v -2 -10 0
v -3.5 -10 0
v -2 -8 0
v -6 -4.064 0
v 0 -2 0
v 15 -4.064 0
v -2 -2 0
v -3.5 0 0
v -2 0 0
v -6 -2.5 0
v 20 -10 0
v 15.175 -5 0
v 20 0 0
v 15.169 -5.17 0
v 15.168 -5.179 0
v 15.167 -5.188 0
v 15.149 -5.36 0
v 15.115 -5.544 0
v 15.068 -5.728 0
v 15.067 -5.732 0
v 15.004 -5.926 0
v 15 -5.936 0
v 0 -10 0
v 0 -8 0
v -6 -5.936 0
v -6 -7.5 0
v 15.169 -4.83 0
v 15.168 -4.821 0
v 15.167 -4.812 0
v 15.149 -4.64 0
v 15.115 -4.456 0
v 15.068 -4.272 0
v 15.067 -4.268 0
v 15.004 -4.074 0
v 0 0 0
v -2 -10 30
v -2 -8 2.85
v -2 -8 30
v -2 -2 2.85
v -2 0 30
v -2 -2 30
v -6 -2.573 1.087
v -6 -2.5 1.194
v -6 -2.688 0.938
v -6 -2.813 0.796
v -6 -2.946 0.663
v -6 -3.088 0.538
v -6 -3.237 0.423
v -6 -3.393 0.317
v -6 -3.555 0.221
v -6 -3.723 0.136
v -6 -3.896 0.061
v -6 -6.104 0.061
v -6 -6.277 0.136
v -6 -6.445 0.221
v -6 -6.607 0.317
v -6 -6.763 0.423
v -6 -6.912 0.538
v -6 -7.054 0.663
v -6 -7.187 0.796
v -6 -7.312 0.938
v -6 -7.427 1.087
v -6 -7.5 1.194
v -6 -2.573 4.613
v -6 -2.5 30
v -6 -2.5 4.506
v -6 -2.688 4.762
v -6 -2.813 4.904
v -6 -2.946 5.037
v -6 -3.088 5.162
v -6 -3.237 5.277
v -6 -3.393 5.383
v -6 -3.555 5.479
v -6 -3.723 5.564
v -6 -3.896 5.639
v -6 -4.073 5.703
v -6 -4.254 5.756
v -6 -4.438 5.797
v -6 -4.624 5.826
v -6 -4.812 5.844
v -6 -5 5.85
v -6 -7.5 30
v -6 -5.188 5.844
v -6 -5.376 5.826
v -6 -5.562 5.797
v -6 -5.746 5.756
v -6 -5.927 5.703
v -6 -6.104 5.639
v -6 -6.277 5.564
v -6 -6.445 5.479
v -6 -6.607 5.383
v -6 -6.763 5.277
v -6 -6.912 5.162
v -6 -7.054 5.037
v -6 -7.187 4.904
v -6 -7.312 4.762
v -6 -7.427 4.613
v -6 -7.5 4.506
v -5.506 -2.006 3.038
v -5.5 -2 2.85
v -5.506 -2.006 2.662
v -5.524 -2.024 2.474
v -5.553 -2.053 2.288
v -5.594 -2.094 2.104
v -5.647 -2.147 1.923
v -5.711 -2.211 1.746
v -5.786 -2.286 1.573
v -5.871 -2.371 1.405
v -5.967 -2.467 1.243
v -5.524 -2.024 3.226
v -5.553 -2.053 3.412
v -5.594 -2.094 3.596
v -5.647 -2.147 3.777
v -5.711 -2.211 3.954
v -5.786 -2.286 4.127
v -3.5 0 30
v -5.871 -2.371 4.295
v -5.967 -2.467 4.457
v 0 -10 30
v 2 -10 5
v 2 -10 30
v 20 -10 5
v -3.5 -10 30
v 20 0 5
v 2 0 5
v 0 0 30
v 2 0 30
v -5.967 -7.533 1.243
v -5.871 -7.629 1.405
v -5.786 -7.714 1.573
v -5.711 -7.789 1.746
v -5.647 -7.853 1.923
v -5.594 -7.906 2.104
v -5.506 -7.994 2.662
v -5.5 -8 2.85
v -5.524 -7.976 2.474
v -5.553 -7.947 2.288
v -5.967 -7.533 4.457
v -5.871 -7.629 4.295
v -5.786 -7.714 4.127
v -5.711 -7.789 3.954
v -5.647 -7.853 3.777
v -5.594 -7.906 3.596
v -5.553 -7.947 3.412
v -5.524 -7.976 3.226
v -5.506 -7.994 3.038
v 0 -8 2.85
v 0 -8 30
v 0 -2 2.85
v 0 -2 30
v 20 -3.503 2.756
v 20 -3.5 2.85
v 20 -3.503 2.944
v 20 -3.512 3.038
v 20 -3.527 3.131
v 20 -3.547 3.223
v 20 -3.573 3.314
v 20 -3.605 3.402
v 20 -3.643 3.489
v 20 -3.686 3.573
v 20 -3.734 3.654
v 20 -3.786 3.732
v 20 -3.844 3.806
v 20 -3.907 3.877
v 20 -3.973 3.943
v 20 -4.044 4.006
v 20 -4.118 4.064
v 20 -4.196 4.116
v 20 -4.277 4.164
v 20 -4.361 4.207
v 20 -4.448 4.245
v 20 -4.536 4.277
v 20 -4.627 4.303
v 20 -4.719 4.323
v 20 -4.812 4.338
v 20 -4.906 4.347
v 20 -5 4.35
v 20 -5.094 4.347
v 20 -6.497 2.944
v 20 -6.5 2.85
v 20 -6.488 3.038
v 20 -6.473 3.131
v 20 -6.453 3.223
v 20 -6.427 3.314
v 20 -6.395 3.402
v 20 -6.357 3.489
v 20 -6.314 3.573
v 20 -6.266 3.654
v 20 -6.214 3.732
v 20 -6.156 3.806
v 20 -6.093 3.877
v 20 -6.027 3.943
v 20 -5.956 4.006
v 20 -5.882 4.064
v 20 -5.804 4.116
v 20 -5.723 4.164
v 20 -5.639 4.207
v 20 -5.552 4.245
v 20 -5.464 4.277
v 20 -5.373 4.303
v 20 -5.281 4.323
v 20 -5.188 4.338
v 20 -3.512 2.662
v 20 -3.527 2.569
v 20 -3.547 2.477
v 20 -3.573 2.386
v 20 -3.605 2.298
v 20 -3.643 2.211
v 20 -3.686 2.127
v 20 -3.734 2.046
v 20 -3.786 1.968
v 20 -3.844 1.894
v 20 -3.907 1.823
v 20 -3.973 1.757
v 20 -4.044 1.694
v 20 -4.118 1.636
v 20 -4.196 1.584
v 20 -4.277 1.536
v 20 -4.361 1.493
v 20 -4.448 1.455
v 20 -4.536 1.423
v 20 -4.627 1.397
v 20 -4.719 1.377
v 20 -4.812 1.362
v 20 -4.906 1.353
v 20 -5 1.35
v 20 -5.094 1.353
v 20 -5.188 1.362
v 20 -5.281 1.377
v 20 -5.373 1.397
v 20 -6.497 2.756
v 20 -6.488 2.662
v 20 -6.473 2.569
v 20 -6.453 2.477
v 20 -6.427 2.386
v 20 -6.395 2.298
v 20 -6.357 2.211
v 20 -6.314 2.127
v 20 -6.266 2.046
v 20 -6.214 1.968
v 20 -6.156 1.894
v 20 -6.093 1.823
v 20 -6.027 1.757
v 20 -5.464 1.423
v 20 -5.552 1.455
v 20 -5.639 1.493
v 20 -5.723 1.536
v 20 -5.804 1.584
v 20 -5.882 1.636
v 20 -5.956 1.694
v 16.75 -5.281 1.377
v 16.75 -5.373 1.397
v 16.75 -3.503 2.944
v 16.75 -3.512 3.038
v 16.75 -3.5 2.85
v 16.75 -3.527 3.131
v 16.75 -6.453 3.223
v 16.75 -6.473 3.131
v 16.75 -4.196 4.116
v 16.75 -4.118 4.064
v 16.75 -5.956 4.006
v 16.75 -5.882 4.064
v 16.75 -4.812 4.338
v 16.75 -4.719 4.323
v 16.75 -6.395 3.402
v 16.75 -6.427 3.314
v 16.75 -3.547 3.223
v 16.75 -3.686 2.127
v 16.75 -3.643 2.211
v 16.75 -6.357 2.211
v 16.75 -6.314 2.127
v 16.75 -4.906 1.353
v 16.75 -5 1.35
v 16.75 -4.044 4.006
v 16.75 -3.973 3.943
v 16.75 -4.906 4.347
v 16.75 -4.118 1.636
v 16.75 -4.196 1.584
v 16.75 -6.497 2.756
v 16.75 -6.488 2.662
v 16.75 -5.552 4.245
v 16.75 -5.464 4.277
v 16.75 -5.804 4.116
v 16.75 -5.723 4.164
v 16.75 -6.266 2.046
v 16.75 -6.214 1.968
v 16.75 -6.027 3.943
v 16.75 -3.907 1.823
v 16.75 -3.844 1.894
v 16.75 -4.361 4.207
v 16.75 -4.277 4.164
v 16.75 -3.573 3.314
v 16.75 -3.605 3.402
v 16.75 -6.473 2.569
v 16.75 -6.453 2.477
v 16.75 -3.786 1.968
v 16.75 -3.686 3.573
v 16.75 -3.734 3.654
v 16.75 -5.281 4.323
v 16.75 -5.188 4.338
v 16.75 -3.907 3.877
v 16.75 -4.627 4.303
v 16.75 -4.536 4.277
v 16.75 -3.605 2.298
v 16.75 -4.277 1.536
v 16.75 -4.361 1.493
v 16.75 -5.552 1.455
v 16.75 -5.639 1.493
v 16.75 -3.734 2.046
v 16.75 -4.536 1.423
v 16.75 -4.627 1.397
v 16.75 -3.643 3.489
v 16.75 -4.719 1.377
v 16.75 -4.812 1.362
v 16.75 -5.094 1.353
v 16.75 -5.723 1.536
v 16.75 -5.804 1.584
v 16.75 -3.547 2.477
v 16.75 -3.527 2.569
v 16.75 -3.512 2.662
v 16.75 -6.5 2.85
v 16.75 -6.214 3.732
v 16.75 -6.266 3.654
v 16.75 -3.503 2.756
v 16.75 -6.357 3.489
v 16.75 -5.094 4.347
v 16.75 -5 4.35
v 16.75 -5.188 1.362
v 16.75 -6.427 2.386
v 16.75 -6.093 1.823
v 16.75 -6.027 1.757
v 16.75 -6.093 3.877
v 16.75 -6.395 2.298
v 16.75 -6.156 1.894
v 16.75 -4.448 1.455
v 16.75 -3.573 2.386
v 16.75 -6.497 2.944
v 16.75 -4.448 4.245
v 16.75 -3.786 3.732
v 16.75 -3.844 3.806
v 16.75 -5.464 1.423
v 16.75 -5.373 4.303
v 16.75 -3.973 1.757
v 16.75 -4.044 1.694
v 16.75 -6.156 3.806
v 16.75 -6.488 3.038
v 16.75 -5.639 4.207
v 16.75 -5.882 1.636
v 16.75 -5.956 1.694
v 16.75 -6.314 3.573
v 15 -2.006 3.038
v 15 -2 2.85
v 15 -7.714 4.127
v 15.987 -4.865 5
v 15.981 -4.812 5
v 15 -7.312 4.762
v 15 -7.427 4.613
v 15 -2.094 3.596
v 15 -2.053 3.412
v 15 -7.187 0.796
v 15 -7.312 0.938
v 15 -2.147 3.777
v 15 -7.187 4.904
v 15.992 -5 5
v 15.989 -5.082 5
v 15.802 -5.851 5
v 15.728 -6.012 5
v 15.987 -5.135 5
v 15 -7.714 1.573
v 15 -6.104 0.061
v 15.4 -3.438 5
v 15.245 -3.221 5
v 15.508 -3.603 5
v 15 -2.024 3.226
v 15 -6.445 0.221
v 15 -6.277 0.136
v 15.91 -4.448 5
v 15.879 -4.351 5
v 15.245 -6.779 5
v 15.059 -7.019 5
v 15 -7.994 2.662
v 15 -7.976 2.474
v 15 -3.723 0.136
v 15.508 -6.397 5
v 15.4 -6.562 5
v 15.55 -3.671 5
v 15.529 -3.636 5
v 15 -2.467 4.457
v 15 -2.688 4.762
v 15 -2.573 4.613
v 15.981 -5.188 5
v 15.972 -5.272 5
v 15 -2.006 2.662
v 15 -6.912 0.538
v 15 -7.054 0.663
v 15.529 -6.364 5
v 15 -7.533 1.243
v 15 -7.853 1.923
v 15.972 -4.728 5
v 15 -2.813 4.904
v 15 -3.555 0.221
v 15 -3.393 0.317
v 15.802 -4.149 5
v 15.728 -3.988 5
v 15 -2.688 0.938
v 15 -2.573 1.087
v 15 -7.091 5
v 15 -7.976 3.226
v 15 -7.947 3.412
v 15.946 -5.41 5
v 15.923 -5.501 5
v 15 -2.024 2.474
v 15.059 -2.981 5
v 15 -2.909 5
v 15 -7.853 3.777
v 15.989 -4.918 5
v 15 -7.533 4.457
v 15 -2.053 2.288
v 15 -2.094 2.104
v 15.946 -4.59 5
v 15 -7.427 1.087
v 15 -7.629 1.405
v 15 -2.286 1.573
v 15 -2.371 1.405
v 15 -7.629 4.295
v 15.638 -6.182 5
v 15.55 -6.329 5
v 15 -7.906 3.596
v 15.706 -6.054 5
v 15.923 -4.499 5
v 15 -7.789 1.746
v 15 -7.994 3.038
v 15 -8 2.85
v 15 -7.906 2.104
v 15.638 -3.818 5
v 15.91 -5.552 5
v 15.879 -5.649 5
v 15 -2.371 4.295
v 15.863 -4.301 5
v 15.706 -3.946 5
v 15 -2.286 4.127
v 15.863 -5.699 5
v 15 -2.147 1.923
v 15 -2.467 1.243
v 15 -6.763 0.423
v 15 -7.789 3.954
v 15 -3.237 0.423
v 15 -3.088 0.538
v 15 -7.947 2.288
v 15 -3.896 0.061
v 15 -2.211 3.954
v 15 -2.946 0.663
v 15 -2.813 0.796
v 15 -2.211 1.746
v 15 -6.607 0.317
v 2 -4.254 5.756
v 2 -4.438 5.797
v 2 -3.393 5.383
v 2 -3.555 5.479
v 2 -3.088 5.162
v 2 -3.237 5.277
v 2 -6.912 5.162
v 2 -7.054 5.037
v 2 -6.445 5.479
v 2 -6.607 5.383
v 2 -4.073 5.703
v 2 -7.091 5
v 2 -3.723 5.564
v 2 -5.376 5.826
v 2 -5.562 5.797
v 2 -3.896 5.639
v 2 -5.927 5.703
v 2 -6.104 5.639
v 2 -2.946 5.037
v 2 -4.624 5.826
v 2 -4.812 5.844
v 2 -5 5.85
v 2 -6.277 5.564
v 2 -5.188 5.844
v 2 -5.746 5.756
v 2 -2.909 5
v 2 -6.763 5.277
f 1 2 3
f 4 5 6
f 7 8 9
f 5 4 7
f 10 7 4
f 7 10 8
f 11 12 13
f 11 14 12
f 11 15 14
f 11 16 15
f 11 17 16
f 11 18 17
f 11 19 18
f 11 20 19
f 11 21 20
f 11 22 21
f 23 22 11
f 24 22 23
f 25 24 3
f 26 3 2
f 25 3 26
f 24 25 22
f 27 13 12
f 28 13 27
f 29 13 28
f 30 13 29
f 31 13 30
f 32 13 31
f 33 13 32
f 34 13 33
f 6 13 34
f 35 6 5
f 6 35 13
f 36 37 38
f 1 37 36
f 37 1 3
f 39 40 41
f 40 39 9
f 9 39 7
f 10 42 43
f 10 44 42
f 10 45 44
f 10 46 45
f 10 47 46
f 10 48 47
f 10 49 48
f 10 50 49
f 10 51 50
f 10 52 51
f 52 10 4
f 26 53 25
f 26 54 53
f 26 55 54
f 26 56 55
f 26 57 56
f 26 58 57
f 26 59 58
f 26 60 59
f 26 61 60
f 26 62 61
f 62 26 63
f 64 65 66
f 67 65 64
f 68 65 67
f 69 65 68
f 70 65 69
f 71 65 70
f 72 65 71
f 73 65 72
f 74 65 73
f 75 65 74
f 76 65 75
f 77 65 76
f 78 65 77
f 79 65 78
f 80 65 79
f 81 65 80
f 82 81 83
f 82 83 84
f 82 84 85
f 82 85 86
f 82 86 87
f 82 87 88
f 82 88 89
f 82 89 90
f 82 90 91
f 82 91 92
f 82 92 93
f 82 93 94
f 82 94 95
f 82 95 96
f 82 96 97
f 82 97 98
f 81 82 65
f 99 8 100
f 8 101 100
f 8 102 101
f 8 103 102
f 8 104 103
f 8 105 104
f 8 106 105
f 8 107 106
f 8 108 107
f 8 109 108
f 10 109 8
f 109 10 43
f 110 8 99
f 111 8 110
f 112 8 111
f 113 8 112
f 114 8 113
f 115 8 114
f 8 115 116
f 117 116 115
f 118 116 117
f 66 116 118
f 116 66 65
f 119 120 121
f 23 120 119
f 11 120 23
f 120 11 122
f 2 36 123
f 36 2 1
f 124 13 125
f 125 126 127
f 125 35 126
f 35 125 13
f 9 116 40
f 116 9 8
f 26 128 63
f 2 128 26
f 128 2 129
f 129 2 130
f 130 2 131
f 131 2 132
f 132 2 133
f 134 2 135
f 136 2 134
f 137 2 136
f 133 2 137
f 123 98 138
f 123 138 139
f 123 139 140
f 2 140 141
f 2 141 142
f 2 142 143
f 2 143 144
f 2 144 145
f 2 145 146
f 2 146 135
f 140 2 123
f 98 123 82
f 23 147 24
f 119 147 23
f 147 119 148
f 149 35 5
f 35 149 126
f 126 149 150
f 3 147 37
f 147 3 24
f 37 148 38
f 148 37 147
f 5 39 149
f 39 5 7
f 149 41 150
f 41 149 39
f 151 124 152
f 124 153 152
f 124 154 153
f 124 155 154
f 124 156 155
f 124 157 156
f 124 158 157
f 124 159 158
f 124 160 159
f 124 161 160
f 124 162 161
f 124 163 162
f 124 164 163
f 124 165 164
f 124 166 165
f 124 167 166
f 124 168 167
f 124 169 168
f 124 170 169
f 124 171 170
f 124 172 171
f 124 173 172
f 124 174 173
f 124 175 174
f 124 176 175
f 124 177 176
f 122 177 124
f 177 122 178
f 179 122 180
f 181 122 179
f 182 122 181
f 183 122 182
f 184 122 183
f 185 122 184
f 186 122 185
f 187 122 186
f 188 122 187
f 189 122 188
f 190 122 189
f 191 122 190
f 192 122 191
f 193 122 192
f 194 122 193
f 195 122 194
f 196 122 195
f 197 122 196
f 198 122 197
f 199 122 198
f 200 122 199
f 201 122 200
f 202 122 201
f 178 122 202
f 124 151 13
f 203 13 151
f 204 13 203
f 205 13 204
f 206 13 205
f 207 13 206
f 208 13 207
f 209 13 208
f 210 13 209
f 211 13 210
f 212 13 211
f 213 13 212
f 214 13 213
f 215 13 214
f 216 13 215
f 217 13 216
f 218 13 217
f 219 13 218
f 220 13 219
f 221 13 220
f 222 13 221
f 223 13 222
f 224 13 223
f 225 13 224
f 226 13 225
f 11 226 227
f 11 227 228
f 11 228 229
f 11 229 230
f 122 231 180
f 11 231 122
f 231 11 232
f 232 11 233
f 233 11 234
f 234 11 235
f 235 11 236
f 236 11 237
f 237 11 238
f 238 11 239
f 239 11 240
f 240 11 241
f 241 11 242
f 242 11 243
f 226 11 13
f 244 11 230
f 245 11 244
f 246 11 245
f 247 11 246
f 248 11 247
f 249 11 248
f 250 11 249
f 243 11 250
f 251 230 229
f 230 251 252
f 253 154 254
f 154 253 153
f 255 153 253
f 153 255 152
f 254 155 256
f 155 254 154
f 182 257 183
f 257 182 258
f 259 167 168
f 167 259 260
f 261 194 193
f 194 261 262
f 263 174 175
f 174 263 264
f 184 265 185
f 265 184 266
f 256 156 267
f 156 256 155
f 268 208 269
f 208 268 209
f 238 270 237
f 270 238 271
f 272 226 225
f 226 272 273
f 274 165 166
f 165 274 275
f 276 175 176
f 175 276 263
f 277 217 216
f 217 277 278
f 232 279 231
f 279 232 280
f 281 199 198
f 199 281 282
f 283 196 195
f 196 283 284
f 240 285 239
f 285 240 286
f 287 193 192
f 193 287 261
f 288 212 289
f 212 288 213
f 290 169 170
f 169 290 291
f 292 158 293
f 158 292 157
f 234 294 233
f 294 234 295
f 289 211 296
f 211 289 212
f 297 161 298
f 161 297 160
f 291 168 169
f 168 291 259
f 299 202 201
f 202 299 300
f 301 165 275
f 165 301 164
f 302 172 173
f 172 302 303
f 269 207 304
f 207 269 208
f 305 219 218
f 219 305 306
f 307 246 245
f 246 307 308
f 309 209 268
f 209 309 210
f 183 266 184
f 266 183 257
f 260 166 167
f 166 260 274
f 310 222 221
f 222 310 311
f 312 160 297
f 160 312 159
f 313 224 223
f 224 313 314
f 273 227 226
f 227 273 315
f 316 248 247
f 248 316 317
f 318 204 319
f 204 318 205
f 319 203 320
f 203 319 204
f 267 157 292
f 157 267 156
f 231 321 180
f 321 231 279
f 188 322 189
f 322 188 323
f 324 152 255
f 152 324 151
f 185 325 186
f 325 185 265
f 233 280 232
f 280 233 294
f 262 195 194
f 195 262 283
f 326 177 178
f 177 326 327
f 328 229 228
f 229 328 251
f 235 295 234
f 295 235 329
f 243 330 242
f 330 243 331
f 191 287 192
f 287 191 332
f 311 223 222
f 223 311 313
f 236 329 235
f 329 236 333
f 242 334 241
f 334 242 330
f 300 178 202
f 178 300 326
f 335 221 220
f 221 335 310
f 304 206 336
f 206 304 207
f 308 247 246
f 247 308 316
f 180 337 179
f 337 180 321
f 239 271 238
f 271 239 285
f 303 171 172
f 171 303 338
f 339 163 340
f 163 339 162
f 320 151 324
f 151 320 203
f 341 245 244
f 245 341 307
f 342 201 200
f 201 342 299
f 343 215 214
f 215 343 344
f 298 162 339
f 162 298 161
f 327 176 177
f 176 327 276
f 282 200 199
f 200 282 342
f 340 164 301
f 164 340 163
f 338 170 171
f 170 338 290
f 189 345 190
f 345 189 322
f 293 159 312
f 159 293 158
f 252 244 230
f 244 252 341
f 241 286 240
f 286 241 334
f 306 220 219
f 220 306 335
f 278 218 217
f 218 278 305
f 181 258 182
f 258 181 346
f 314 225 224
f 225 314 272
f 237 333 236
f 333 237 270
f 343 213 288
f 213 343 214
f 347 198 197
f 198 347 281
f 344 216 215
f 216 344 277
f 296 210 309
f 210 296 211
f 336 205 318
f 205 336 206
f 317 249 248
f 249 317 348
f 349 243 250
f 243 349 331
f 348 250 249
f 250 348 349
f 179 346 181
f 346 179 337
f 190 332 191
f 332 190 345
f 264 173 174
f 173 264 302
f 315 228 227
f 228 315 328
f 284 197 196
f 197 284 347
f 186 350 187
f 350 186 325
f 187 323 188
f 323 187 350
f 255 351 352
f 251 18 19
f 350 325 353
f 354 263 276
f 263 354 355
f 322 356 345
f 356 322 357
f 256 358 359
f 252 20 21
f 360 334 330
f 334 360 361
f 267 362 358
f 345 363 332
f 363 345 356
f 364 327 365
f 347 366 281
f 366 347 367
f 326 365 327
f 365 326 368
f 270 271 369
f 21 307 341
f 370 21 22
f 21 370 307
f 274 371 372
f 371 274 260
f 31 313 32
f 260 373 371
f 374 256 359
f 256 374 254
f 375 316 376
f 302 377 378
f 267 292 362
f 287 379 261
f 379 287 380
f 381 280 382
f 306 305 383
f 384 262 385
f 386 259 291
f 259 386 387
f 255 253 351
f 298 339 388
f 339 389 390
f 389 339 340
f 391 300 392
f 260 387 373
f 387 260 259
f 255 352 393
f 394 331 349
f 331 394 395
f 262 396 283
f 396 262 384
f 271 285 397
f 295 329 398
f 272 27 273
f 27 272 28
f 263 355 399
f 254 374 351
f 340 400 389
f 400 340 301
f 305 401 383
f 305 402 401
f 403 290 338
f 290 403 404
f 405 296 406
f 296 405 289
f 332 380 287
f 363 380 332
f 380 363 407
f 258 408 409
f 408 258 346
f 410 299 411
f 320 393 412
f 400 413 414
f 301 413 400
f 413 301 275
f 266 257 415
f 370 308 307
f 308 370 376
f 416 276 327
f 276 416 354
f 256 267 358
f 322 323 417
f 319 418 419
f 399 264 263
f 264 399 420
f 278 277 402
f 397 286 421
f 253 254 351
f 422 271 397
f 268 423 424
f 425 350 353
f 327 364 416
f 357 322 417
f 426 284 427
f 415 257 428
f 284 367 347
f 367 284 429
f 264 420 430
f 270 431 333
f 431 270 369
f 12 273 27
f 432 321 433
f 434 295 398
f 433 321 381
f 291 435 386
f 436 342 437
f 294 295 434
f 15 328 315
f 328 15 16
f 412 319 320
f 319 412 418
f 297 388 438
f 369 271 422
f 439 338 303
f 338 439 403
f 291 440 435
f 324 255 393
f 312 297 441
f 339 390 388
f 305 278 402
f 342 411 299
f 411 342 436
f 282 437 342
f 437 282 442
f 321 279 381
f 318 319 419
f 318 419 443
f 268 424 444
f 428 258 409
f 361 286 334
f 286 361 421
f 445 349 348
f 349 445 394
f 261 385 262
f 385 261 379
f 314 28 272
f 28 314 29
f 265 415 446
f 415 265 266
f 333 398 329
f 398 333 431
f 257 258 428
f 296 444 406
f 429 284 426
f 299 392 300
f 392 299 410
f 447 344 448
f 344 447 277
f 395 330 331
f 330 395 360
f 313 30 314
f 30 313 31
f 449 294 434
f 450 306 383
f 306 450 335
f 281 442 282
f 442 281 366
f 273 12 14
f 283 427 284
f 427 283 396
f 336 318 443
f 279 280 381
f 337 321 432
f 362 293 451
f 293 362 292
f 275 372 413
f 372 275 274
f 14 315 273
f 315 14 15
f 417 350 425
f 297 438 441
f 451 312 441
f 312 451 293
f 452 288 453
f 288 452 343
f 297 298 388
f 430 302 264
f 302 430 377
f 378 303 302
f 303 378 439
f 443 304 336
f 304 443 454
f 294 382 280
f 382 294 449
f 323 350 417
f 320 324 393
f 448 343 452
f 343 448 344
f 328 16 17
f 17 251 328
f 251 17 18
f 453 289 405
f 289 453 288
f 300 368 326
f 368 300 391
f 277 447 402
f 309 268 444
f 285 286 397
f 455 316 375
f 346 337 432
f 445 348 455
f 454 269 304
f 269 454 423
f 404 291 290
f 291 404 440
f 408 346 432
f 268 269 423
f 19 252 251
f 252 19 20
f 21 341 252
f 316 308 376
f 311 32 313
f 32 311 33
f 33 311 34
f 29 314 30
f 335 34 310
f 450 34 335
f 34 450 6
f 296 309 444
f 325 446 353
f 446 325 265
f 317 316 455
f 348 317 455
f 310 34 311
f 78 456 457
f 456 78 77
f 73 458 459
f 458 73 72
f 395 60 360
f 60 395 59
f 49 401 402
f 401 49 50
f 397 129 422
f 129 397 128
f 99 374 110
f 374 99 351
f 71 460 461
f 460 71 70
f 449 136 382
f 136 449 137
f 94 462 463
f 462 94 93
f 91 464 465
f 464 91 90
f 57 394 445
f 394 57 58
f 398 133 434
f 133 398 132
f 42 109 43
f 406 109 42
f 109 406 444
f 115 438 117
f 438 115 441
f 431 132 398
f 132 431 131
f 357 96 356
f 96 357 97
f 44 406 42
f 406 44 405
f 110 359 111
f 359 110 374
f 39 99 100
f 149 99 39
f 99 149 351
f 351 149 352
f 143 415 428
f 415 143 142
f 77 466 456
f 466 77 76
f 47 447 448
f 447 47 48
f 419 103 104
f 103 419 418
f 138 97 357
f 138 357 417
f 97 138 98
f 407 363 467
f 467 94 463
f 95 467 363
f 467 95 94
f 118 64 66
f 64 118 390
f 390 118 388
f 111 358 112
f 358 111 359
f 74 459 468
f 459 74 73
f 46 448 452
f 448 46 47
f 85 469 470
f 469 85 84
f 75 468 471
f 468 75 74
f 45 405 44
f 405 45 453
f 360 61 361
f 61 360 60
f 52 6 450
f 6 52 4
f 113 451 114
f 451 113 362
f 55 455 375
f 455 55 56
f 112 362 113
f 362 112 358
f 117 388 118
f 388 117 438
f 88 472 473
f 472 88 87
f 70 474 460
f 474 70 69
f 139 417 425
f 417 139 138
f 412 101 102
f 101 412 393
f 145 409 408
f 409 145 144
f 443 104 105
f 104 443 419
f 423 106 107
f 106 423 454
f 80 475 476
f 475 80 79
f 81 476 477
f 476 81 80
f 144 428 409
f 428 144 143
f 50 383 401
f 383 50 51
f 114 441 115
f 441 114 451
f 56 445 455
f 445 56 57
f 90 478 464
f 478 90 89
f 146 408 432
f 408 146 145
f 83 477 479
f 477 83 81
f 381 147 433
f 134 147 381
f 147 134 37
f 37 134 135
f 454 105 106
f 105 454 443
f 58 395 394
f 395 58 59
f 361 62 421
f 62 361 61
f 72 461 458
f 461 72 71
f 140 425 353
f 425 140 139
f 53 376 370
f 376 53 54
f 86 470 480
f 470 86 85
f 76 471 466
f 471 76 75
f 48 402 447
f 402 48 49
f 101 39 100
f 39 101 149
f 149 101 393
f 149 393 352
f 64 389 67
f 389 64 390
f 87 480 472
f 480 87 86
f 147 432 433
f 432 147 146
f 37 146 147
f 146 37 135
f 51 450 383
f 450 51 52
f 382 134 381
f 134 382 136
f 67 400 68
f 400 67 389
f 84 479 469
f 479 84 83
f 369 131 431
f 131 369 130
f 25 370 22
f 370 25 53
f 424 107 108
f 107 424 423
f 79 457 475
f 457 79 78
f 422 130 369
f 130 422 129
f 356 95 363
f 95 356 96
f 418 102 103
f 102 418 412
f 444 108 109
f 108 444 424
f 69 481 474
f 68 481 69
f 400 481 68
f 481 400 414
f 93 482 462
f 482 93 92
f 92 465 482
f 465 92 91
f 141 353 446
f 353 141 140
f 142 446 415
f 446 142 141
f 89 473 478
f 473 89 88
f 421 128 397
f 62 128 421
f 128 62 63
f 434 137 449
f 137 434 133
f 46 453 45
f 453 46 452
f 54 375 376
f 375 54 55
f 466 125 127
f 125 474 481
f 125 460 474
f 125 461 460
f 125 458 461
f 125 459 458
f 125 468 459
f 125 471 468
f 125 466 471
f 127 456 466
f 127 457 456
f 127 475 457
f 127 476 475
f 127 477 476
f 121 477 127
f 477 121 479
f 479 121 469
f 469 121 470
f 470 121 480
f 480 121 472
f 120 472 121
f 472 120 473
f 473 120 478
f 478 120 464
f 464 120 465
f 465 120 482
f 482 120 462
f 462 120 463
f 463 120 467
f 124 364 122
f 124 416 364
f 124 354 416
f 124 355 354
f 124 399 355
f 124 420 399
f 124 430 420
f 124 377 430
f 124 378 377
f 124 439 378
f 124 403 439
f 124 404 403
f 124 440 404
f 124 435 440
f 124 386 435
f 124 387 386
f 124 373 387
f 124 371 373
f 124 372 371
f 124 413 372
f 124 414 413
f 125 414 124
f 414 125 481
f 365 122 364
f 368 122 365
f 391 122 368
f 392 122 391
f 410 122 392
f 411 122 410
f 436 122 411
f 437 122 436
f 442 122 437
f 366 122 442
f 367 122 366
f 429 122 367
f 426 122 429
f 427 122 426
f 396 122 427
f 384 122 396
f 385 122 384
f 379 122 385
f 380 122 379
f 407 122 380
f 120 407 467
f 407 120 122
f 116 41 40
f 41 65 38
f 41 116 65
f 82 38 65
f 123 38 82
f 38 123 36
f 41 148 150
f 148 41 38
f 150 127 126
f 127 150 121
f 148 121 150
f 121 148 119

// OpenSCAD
// file: ../unsorted/lib/ISOThread.scad
// ISO screw thread modules by RevK @TheRealRevK
// https://en.wikipedia.org/wiki/ISO_metric_screw_thread
// Usable as a library - provides standard nut and both as well as arbitrary thread sections

/* [ Global ] */

// Length of bolt
l=50;

// Size
m=20; // [1.4,1.6,2,2.5,3,4,5,6,7,8,10,12,14,16,18,20,22,24,27,30,33,36]

// Clearance for printer tollerance for nut
t=0.2;

// Steps
$fn=100;

iso_bolt(m=m,l=l);
translate([m*2,0,0])iso_nut(m=m,t=t);

// Examples
//union(){iso_bolt(m=20,l=50);translate([40,0,0])iso_nut(m=20);}
//union(){iso_bolt(m=10,l=30);translate([25,0,0])iso_nut(m=10);}
//iso_thread(l=20,cap=0);
//iso_thread(l=5);
//iso_nut(m=20);
//union(){difference(){iso_bolt(m=20,l=50);linear_extrude(height=0.4)scale(1.4)import("/Users/adrian/Documents/3D/DXF/aac.dxf");};translate([40,0,0])iso_nut(m=20);}

function iso_hex_size(m)    // Return standard hex nut size for m value
=lookup(m,[
 [1.4,3],
 [1.6,3.2],
 [2,4],
 [2.5,5],
 [3,6],
 [3.5,6],
 [4,7],
 [5,8],
 [6,10],
 [7,11],
 [8,13],
 [10,17],
 [12,19],
 [14,22],
 [16,24],
 [18,27],
 [20,30],
 [22,32],
 [24,36],
 [27,41],
 [30,46],
 [33,50],
 [36,55],
 ]);
 
 
 function iso_pitch_course(m)   // Return standard course pitch for m value
=lookup(m,[
[1,0.25],
[1.2,0.25],
[1.4,0.3],
[1.6,0.35],
[1.8,0.35],
[2,0.4],
[2.5,0.45],
[3,0.5],
[3.5,0.6],
[4,0.7],
[5,0.8],
[6,1],
[7,1],
[8,1.25],
[10,1.5],
[12,1.75],
[14,2],
[16,2],
[18,2.5],
[20,2.5],
[22,2.5],
[24,3],
[27,3],
[30,3.5],
[33,3.5],
[36,4],
[39,4],
[42,4.5],
[48,5],
[52,5],
[56,5.5],
[60,5.5],
[62,6]
  ]);

module hex_head(d=30,w=0)
{ // Make a hex head centred 0,0 with height h and wrench size/diameter d
    intersection()
    {
        w=(w?w:d/3);
        r=d/2;
        m=sqrt(r*r+r*r*tan(30)*tan(30))-r;
        cylinder(r=r+m,h=w,$fn=6);
        union()
        {
            cylinder(r1=r,r2=r+m,h=m);
            translate([0,0,m])cylinder(r=r+m,h=w-m*2);
            translate([0,0,w-m])cylinder(r1=r+m,r2=r,h=m);
        }
    }
}

module iso_thread(  // Generate ISO / UTS thread, centred 0,0,
    m=20,    // M size, mm, (outer diameter)
    p=0,  // Pitch, mm (0 for standard coarse pitch)
    l=50,   // length
    t=0,    // tolerance to add (for internal thread)
    cap=1,  // capped ends. If uncapped, length is half a turn more top and bottom
)
{
    p=(p?p:iso_pitch_course(m));
    r=m/2; // radius
    h=sqrt(3)/2*p;  // height of thread
    fn=round($fn?$fn:36); // number of points per turn
    fa=360/fn; // angle of each point
    n=max(fn+1,round(fn*(l+(cap?p*2:0))/p)+1); // total number of points
    q=min(p/16,t); // thread width adjust
    p1=[for(i=[0:1:n-1])[cos(i*fa)*(r-5*h/8+t),sin(i*fa)*(r-5*h/8+t),i*p/fn+q]];
    p2=[for(i=[0:1:n-1])[cos(i*fa)*(r-5*h/8+t),sin(i*fa)*(r-5*h/8+t),i*p/fn+p/4-q]];
    p3=[for(i=[0:1:n-1])[cos(i*fa)*(r+t),sin(i*fa)*(r+t),i*p/fn+p/2+p/8-p/16-q]];
    p4=[for(i=[0:1:n-1])[cos(i*fa)*(r+t),sin(i*fa)*(r+t),i*p/fn+p/2+p/8+p/16+q]];
    p5=[for(i=[0:1:n-1])[cos(i*fa)*(r-5*h/8+t),sin(i*fa)*(r-5*h/8+t),i*p/fn+p+q]];
    p6=[[0,0,p/2],[0,0,n*p/fn+p/2]];
    
    t1=[for(i=[0:1:fn-1])[n*5,i,i+1]];
    t2=[[n*5,n,0],[n*5,n*2,n],[n*5,n*3,n*2],[n*5,n*4,n*3]];
    t3=[for(i=[0:1:n-2])[i,i+n,i+1]];
    t4=[for(i=[0:1:n-2])[i+n,i+n+1,i+1]];
    t5=[for(i=[0:1:n-2])[i+n,i+n*2,i+n+1]];
    t6=[for(i=[0:1:n-2])[i+n*2,i+n*2+1,i+n+1]];
    t7=[for(i=[0:1:n-2])[i+n*2,i+n*3,i+n*2+1]];
    t8=[for(i=[0:1:n-2])[i+n*3,i+n*3+1,i+n*2+1]];
    t9=[for(i=[0:1:n-2])[i+n*3,i+n*4,i+n*3+1]];
    t10=[for(i=[0:1:n-2])[i+n*4,i+n*4+1,i+n*3+1]];
    t11=[for(i=[0:1:fn-1])[n*5+1,n*5-i-1,n*5-i-2]];
    t12=[[n*5+1,n*4-1,n*5-1],[n*5+1,n*3-1,n*4-1],[n*5+1,n*2-1,n*3-1],[n*5+1,n-1,n*2-1]];
   
    intersection()
    {
        translate([0,0,-p/2-(cap?p:0)])
        polyhedron(points=concat(p1,p2,p3,p4,p5,p6),
        faces=concat(t1,t2,t3,t4,t5,t6,t7,t8,t9,t10,t11,t12));
        if(cap)hull()
        { // champhered ends and capped to exact length
            cylinder(r1=r-5*h/8+t,r2=r+t,h=5*h/8*tan(30));
            translate([0,0,l-5*h/8*tan(30)])cylinder(r1=r+t,r2=r-5*h/8+t,h=5*h/8*tan(30));
        }
    }
}

module iso_bolt(m=20,w=0,l=50,p=0)
{
    hex_head(d=iso_hex_size(m),w=w);
    iso_thread(m=m,l=l,p=p);
}

module iso_nut(m=20,w=0,p=0,t=0.2)
{
    w=(w?w:m/2); // How thick to make the nut
    p=(p?p:iso_pitch_course(m)); // standard pitch
    h=sqrt(3)/2*p;  // height of thread
    r=m/2; // radius
    difference()
    {
        hex_head(d=iso_hex_size(m),w=w);
        translate([0,0,-p/2])iso_thread(m=m,p=p,l=w+p,t=t,cap=0);
        translate([0,0,-1])cylinder(r1=r+t+1,r2=r-5*h/8+t,h=1+5*h/8*tan(30));
        translate([0,0,w-5*h/8*tan(30)])cylinder(r2=r+t+1,r1=r-5*h/8+t,h=1+5*h/8*tan(30));
    }
}
// main file
//=============================================================================
// 2020-stopper.scad
//
// A bracket to block the channel of a 2020 extrusion.
//=============================================================================
// Written in 2021 by Patrick Barrett
//
// To the extent possible under law, the author(s) have dedicated all copyright
// and related and neighboring rights to this work to the public domain
// worldwide. This work is distributed without any warranty.
//
// See <http://creativecommons.org/publicdomain/zero/1.0/> for full dedication.
//=============================================================================
// dimensions
//=============================================================================

mounting_hole_spacing = 54.3;


$fn = 100;

abit = 0.001;
alot = 100;

//=============================================================================
// main soild
//=============================================================================

use <../unsorted/lib/ISOThread.scad>

module counter_sunk_screw_hole(d_head, d_hole, l_transition) {
    union() {
        translate([0,0,-abit+l_transition])
        cylinder(d = d_head, h = alot);
        
        cylinder(d1 = d_hole, d2 = d_head, h = l_transition);
        
        translate([0,0,-alot])
        cylinder(d = d_hole, h = alot);
    }
}

module profile(l) {
    translate([0,10/2,0])
    hull(){
        translate([0,-5/2,0])
        cube([l,5, 4]);
        translate([0,-10/2,0])
        cube([l,10, 1.5]);
    }
}

rotate([90,0,0])
difference() {
    union() {
        // profile
        translate([-2,0,10])
        rotate([-90,0,90])
        profile(60);
        
        // profile arm
        translate([-2,0,-(6/2) + (10/2)])
        cube([2,60,6]);
        
        // main body
        cube([20,60,10]);
    }
    
    // screw holes
    translate([0,(60-mounting_hole_spacing)/2,0]){
        translate([20-5,0,5])
        rotate([0,90,0])
        counter_sunk_screw_hole(3, 6, 1.75);
        translate([20-5,mounting_hole_spacing,5])
        rotate([0,90,0])
        counter_sunk_screw_hole(3, 6, 1.75);
    }
    
    // component space cutout
    translate([2,5,0])
    cube([18,50,10]);
    
    // lazy cut to make it printable
    translate([-50,30,0])
    cube([alot, alot, 10]);
}
